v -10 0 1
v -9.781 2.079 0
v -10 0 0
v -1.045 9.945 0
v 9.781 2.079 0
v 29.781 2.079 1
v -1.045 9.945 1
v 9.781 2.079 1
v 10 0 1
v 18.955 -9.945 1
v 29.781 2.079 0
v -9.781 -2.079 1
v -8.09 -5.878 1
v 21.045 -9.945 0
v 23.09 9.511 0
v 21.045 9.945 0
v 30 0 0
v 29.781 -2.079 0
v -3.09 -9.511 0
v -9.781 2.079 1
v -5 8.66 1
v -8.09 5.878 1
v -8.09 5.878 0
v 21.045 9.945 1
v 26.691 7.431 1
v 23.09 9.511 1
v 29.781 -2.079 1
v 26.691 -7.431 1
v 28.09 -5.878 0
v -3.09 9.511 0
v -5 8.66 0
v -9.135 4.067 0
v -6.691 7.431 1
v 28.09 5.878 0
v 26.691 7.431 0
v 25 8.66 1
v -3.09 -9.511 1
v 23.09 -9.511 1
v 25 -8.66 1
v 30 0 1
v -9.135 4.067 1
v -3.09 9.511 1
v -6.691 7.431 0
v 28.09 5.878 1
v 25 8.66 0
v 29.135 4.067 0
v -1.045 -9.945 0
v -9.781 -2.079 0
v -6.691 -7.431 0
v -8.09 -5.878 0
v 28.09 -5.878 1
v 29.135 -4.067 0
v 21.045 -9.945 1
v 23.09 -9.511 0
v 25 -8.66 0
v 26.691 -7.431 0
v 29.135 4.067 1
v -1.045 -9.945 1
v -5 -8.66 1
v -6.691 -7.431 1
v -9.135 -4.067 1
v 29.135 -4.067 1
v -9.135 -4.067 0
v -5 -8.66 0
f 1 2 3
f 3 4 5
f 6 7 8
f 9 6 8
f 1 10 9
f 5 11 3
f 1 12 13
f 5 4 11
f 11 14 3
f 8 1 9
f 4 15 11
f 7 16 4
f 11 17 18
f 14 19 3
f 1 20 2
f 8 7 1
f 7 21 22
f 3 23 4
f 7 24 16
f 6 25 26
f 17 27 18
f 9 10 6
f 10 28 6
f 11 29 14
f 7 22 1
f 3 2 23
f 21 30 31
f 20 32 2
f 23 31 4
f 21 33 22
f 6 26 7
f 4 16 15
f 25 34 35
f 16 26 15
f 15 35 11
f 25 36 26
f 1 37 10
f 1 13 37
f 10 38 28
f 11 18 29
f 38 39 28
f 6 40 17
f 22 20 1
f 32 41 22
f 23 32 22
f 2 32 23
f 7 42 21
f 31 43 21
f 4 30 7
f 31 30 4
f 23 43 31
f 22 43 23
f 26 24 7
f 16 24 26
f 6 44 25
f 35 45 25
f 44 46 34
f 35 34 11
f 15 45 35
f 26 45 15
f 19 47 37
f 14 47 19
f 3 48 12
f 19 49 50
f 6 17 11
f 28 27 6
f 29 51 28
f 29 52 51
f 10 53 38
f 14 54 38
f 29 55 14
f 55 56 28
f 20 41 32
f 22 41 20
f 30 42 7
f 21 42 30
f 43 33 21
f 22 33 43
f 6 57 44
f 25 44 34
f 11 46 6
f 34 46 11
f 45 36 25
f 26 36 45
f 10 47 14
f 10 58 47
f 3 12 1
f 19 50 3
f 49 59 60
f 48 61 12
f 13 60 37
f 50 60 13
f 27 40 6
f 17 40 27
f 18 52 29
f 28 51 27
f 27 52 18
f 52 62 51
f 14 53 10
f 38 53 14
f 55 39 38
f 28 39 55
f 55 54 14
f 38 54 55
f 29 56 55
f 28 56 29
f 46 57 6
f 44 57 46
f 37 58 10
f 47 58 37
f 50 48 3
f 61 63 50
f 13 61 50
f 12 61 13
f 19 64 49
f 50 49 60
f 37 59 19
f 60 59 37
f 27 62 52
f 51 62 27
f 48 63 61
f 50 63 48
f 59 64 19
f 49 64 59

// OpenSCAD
Small_Diameter = 20;
Large_Diameter = 78;
Thickness = 1;

hull() {
    cylinder(d = Small_Diameter, h = Thickness);
    translate([Small_Diameter, 0, 0])
        cylinder(d = Small_Diameter, h = Thickness);
}
